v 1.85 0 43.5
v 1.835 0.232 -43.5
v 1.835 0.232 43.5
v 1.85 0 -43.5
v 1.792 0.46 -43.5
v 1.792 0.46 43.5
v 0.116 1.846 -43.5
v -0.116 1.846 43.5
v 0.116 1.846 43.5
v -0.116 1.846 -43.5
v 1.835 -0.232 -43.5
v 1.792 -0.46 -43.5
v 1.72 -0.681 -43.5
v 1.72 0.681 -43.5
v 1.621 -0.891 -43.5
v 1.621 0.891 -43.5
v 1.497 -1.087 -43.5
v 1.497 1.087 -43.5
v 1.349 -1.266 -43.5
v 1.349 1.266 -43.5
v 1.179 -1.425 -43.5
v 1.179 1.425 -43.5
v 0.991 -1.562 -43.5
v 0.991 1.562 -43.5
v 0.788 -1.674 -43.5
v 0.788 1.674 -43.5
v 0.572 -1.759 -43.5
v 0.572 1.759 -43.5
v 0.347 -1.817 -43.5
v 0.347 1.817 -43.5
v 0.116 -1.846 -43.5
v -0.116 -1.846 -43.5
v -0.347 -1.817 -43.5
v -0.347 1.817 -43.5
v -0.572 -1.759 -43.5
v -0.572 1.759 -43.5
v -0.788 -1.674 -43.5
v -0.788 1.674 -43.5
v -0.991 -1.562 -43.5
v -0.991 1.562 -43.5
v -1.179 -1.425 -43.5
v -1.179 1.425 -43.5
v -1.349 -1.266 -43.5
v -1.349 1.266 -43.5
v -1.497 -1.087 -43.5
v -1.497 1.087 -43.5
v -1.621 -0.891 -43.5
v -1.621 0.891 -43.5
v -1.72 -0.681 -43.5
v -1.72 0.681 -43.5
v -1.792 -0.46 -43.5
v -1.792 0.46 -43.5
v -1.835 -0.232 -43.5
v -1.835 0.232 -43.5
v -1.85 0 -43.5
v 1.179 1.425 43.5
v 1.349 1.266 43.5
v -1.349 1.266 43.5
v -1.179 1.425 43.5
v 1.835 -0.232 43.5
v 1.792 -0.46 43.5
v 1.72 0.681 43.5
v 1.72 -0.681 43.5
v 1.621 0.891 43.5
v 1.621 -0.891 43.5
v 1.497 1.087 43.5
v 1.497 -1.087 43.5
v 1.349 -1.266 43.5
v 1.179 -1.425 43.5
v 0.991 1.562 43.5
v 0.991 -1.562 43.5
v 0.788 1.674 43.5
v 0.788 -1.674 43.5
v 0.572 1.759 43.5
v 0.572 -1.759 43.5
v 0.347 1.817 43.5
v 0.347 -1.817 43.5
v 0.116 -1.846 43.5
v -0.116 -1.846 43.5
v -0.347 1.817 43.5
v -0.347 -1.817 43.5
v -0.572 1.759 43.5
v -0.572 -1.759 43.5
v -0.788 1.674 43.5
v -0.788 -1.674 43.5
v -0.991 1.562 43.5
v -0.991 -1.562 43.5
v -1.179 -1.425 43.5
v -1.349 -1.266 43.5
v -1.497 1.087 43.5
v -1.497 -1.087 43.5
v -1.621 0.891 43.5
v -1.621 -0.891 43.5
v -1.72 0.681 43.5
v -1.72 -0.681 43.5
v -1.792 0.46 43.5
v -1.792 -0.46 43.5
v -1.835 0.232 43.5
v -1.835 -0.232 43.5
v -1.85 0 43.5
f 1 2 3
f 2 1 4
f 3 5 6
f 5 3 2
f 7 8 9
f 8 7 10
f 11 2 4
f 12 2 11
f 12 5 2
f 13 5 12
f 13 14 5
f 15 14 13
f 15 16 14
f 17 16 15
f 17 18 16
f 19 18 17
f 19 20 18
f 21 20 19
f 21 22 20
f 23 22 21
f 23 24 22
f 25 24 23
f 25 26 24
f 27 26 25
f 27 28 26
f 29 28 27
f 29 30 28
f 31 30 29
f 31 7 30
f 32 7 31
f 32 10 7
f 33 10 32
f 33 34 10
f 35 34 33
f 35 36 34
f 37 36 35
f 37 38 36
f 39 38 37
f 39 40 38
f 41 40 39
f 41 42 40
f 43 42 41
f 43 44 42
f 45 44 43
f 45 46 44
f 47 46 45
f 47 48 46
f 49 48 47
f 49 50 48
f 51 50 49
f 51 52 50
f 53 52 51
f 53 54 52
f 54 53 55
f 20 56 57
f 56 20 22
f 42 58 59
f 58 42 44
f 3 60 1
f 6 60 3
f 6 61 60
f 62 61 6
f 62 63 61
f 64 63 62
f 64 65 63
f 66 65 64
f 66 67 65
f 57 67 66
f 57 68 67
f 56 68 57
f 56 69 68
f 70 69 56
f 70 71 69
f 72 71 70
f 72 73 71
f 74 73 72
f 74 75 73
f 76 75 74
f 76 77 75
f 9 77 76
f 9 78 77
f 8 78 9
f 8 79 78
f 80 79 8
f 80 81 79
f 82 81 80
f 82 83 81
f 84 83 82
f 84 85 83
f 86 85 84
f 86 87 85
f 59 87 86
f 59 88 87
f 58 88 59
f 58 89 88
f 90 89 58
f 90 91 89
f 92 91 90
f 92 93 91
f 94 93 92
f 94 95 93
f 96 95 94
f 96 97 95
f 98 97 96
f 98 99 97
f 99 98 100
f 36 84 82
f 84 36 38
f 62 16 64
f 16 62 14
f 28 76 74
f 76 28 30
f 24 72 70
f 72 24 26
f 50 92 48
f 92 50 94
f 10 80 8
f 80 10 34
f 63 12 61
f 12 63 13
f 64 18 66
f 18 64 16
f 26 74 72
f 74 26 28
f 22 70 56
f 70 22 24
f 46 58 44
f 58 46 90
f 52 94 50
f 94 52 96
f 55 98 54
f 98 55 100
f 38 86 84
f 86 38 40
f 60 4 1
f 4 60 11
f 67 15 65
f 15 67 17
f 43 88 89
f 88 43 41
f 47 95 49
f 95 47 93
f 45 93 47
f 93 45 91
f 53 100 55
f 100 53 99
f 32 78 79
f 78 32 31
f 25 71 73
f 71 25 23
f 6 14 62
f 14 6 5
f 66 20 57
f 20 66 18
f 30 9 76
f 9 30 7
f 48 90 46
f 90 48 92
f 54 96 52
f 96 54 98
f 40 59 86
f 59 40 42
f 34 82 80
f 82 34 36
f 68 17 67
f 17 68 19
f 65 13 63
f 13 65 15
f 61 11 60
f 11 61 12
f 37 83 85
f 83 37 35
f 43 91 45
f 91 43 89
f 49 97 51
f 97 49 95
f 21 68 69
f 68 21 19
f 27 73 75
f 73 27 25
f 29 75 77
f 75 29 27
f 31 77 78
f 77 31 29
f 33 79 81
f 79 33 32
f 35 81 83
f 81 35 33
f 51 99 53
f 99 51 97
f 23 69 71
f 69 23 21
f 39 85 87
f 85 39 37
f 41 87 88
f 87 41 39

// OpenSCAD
$fn = 50;


difference() {
	union() {
		translate(v = [0, 0, -43.5000000000]) {
			cylinder(h = 87, r = 1.8500000000);
		}
	}
	union() {
		translate(v = [0, 0, -100.0000000000]) {
			cylinder(h = 200, r = 0);
		}
	}
}
